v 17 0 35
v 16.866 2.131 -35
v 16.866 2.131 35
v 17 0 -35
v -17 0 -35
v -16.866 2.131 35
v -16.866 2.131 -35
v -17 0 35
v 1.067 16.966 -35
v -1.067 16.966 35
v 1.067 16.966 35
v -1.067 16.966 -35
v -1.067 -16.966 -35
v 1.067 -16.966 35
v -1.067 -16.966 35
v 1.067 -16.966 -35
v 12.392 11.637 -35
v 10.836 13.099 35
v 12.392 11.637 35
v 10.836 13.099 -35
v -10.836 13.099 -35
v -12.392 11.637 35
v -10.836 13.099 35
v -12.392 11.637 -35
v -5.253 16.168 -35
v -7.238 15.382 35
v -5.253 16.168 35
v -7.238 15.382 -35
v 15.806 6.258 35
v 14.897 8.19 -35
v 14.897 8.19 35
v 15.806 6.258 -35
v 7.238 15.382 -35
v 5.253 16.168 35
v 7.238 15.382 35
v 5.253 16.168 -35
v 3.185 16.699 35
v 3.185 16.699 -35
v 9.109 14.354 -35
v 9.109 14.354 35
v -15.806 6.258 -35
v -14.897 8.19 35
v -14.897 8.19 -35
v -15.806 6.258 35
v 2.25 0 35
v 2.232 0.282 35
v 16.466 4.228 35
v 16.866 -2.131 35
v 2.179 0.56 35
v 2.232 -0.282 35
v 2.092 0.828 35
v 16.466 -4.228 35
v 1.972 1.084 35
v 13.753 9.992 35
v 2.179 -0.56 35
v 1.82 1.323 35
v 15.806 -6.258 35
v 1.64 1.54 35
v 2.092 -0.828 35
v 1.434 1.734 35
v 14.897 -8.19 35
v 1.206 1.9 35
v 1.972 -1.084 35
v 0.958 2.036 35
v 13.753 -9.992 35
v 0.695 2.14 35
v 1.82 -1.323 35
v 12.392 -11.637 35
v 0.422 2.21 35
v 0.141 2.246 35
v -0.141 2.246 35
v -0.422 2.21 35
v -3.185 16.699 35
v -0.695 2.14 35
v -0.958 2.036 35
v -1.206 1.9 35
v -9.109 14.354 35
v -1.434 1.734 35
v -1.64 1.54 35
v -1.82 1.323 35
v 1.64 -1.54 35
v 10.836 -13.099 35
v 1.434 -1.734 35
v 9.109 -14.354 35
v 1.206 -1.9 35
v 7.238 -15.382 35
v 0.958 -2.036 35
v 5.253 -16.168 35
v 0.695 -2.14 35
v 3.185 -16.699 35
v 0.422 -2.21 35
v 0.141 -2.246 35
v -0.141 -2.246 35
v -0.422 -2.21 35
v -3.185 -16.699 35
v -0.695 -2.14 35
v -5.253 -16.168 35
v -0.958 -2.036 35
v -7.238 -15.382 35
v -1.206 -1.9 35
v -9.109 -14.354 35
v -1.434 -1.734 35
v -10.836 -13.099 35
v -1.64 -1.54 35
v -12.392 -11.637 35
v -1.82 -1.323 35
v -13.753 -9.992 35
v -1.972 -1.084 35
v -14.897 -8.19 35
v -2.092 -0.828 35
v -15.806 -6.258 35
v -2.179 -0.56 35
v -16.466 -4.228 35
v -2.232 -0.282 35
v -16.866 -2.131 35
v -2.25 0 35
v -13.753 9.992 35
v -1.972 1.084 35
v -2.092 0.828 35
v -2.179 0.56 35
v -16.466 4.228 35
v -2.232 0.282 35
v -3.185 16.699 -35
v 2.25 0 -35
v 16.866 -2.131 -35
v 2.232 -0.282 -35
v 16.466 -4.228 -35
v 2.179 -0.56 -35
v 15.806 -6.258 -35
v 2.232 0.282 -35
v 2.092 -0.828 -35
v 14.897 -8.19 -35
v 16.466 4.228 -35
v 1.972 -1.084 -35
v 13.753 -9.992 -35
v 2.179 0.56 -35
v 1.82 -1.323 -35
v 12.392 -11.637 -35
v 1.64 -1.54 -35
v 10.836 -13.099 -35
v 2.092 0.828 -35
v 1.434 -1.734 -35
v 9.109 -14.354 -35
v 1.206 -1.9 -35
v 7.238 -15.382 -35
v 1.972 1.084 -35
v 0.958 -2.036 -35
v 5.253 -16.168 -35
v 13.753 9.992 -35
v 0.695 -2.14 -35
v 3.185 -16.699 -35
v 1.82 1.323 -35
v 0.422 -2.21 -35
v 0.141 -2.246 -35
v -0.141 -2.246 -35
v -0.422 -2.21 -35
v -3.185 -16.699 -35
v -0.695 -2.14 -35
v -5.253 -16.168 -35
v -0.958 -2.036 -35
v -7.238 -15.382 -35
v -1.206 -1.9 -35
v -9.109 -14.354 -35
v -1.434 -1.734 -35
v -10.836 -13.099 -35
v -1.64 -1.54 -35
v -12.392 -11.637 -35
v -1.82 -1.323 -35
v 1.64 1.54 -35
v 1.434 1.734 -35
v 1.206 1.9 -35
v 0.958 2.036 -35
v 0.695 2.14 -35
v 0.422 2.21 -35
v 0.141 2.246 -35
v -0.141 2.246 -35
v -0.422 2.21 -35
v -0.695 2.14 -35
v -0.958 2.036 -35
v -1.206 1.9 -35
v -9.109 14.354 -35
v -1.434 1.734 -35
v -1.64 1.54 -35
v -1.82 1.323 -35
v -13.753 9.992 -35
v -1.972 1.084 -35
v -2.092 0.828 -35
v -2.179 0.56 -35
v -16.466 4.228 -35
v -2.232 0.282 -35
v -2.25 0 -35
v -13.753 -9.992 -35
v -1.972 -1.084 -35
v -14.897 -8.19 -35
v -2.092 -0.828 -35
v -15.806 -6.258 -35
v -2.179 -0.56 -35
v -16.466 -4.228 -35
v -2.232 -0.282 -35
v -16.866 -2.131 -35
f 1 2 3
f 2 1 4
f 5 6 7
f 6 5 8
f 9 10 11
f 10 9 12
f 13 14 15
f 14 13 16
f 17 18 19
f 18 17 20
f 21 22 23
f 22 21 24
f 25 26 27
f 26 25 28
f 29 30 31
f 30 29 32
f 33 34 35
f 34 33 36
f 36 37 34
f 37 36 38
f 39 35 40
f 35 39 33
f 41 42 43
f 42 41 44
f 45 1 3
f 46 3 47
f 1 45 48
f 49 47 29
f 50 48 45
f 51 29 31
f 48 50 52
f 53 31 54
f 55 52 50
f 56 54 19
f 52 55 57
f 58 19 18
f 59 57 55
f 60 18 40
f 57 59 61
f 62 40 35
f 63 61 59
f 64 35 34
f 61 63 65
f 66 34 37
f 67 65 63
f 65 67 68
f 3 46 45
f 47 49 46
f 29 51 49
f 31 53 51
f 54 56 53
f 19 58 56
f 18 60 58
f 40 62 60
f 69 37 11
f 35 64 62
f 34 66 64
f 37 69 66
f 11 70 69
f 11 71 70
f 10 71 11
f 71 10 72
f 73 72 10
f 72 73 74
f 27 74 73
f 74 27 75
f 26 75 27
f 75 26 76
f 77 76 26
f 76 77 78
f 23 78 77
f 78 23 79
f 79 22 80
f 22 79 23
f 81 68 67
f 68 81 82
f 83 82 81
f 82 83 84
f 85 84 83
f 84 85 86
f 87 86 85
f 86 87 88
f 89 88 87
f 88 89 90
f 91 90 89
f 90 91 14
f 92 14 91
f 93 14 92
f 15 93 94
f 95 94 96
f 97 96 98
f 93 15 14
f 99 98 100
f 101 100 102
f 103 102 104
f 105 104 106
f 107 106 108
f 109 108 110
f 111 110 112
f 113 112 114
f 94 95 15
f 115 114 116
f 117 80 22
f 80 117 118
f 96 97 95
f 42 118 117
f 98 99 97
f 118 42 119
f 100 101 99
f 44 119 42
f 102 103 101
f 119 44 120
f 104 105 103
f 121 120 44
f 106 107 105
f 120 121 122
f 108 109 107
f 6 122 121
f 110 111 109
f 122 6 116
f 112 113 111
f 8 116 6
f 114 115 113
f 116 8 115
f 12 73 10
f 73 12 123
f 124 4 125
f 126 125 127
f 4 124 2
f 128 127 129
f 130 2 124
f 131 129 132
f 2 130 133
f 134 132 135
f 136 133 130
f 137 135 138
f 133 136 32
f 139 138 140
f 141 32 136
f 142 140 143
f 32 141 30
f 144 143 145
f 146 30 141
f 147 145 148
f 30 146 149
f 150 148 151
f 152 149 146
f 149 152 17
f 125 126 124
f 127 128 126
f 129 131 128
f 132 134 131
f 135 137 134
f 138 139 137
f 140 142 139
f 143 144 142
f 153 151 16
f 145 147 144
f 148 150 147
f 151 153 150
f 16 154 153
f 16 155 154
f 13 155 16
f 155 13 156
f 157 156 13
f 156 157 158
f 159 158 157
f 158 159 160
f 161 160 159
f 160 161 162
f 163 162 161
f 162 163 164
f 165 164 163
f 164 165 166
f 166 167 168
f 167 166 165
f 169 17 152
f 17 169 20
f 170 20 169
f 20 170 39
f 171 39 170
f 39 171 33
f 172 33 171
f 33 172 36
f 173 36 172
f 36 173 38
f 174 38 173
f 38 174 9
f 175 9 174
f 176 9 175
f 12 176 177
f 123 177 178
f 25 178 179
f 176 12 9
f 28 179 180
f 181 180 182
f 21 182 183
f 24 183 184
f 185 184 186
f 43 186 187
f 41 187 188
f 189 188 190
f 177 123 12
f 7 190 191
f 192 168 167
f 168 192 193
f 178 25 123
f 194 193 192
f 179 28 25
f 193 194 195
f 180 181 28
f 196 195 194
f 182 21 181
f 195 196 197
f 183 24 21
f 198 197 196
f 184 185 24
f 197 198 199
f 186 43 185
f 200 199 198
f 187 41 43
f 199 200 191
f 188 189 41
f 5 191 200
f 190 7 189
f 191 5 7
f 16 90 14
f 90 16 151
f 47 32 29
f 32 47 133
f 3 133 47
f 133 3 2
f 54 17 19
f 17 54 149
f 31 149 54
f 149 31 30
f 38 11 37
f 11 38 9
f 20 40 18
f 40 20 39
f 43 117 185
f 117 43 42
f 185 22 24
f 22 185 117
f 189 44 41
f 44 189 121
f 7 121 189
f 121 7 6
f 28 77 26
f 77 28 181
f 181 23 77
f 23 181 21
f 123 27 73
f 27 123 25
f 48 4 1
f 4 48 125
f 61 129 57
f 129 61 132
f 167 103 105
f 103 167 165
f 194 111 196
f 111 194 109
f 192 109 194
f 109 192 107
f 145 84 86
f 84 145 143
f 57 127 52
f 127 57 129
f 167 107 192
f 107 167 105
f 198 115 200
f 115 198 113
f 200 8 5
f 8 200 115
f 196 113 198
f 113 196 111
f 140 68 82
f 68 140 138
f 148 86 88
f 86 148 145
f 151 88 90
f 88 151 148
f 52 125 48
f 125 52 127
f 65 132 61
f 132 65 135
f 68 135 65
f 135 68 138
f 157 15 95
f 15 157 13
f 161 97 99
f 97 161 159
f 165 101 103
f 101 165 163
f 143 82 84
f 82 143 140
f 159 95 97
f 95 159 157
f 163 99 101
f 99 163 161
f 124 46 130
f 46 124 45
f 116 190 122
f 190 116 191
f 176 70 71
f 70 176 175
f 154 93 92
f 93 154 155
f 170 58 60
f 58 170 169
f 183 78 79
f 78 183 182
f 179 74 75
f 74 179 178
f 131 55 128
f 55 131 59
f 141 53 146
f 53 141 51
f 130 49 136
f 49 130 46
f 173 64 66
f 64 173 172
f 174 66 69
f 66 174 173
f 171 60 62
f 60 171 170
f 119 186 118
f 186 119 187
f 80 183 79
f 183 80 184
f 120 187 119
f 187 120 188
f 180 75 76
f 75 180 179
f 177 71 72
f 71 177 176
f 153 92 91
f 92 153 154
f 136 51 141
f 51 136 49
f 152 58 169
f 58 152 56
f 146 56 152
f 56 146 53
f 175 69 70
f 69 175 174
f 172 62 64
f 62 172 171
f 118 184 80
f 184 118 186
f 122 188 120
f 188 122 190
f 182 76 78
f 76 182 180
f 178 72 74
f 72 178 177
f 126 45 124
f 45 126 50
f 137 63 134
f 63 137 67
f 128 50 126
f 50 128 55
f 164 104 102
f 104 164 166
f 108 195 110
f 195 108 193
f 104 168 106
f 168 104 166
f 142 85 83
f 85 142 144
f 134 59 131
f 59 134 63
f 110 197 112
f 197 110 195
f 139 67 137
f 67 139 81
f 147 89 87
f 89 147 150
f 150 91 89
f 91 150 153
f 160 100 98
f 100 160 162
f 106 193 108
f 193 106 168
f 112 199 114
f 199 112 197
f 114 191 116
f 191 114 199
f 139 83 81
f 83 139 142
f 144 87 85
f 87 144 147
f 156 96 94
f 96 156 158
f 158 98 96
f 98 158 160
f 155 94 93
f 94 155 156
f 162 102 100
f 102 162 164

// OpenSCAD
$fn = 50;


difference() {
	union() {
		translate(v = [0, 0, -35.0000000000]) {
			cylinder(h = 70, r = 17.0000000000);
		}
	}
	union() {
		translate(v = [0, 0, -100.0000000000]) {
			cylinder(h = 200, r = 2.2500000000);
		}
	}
}
